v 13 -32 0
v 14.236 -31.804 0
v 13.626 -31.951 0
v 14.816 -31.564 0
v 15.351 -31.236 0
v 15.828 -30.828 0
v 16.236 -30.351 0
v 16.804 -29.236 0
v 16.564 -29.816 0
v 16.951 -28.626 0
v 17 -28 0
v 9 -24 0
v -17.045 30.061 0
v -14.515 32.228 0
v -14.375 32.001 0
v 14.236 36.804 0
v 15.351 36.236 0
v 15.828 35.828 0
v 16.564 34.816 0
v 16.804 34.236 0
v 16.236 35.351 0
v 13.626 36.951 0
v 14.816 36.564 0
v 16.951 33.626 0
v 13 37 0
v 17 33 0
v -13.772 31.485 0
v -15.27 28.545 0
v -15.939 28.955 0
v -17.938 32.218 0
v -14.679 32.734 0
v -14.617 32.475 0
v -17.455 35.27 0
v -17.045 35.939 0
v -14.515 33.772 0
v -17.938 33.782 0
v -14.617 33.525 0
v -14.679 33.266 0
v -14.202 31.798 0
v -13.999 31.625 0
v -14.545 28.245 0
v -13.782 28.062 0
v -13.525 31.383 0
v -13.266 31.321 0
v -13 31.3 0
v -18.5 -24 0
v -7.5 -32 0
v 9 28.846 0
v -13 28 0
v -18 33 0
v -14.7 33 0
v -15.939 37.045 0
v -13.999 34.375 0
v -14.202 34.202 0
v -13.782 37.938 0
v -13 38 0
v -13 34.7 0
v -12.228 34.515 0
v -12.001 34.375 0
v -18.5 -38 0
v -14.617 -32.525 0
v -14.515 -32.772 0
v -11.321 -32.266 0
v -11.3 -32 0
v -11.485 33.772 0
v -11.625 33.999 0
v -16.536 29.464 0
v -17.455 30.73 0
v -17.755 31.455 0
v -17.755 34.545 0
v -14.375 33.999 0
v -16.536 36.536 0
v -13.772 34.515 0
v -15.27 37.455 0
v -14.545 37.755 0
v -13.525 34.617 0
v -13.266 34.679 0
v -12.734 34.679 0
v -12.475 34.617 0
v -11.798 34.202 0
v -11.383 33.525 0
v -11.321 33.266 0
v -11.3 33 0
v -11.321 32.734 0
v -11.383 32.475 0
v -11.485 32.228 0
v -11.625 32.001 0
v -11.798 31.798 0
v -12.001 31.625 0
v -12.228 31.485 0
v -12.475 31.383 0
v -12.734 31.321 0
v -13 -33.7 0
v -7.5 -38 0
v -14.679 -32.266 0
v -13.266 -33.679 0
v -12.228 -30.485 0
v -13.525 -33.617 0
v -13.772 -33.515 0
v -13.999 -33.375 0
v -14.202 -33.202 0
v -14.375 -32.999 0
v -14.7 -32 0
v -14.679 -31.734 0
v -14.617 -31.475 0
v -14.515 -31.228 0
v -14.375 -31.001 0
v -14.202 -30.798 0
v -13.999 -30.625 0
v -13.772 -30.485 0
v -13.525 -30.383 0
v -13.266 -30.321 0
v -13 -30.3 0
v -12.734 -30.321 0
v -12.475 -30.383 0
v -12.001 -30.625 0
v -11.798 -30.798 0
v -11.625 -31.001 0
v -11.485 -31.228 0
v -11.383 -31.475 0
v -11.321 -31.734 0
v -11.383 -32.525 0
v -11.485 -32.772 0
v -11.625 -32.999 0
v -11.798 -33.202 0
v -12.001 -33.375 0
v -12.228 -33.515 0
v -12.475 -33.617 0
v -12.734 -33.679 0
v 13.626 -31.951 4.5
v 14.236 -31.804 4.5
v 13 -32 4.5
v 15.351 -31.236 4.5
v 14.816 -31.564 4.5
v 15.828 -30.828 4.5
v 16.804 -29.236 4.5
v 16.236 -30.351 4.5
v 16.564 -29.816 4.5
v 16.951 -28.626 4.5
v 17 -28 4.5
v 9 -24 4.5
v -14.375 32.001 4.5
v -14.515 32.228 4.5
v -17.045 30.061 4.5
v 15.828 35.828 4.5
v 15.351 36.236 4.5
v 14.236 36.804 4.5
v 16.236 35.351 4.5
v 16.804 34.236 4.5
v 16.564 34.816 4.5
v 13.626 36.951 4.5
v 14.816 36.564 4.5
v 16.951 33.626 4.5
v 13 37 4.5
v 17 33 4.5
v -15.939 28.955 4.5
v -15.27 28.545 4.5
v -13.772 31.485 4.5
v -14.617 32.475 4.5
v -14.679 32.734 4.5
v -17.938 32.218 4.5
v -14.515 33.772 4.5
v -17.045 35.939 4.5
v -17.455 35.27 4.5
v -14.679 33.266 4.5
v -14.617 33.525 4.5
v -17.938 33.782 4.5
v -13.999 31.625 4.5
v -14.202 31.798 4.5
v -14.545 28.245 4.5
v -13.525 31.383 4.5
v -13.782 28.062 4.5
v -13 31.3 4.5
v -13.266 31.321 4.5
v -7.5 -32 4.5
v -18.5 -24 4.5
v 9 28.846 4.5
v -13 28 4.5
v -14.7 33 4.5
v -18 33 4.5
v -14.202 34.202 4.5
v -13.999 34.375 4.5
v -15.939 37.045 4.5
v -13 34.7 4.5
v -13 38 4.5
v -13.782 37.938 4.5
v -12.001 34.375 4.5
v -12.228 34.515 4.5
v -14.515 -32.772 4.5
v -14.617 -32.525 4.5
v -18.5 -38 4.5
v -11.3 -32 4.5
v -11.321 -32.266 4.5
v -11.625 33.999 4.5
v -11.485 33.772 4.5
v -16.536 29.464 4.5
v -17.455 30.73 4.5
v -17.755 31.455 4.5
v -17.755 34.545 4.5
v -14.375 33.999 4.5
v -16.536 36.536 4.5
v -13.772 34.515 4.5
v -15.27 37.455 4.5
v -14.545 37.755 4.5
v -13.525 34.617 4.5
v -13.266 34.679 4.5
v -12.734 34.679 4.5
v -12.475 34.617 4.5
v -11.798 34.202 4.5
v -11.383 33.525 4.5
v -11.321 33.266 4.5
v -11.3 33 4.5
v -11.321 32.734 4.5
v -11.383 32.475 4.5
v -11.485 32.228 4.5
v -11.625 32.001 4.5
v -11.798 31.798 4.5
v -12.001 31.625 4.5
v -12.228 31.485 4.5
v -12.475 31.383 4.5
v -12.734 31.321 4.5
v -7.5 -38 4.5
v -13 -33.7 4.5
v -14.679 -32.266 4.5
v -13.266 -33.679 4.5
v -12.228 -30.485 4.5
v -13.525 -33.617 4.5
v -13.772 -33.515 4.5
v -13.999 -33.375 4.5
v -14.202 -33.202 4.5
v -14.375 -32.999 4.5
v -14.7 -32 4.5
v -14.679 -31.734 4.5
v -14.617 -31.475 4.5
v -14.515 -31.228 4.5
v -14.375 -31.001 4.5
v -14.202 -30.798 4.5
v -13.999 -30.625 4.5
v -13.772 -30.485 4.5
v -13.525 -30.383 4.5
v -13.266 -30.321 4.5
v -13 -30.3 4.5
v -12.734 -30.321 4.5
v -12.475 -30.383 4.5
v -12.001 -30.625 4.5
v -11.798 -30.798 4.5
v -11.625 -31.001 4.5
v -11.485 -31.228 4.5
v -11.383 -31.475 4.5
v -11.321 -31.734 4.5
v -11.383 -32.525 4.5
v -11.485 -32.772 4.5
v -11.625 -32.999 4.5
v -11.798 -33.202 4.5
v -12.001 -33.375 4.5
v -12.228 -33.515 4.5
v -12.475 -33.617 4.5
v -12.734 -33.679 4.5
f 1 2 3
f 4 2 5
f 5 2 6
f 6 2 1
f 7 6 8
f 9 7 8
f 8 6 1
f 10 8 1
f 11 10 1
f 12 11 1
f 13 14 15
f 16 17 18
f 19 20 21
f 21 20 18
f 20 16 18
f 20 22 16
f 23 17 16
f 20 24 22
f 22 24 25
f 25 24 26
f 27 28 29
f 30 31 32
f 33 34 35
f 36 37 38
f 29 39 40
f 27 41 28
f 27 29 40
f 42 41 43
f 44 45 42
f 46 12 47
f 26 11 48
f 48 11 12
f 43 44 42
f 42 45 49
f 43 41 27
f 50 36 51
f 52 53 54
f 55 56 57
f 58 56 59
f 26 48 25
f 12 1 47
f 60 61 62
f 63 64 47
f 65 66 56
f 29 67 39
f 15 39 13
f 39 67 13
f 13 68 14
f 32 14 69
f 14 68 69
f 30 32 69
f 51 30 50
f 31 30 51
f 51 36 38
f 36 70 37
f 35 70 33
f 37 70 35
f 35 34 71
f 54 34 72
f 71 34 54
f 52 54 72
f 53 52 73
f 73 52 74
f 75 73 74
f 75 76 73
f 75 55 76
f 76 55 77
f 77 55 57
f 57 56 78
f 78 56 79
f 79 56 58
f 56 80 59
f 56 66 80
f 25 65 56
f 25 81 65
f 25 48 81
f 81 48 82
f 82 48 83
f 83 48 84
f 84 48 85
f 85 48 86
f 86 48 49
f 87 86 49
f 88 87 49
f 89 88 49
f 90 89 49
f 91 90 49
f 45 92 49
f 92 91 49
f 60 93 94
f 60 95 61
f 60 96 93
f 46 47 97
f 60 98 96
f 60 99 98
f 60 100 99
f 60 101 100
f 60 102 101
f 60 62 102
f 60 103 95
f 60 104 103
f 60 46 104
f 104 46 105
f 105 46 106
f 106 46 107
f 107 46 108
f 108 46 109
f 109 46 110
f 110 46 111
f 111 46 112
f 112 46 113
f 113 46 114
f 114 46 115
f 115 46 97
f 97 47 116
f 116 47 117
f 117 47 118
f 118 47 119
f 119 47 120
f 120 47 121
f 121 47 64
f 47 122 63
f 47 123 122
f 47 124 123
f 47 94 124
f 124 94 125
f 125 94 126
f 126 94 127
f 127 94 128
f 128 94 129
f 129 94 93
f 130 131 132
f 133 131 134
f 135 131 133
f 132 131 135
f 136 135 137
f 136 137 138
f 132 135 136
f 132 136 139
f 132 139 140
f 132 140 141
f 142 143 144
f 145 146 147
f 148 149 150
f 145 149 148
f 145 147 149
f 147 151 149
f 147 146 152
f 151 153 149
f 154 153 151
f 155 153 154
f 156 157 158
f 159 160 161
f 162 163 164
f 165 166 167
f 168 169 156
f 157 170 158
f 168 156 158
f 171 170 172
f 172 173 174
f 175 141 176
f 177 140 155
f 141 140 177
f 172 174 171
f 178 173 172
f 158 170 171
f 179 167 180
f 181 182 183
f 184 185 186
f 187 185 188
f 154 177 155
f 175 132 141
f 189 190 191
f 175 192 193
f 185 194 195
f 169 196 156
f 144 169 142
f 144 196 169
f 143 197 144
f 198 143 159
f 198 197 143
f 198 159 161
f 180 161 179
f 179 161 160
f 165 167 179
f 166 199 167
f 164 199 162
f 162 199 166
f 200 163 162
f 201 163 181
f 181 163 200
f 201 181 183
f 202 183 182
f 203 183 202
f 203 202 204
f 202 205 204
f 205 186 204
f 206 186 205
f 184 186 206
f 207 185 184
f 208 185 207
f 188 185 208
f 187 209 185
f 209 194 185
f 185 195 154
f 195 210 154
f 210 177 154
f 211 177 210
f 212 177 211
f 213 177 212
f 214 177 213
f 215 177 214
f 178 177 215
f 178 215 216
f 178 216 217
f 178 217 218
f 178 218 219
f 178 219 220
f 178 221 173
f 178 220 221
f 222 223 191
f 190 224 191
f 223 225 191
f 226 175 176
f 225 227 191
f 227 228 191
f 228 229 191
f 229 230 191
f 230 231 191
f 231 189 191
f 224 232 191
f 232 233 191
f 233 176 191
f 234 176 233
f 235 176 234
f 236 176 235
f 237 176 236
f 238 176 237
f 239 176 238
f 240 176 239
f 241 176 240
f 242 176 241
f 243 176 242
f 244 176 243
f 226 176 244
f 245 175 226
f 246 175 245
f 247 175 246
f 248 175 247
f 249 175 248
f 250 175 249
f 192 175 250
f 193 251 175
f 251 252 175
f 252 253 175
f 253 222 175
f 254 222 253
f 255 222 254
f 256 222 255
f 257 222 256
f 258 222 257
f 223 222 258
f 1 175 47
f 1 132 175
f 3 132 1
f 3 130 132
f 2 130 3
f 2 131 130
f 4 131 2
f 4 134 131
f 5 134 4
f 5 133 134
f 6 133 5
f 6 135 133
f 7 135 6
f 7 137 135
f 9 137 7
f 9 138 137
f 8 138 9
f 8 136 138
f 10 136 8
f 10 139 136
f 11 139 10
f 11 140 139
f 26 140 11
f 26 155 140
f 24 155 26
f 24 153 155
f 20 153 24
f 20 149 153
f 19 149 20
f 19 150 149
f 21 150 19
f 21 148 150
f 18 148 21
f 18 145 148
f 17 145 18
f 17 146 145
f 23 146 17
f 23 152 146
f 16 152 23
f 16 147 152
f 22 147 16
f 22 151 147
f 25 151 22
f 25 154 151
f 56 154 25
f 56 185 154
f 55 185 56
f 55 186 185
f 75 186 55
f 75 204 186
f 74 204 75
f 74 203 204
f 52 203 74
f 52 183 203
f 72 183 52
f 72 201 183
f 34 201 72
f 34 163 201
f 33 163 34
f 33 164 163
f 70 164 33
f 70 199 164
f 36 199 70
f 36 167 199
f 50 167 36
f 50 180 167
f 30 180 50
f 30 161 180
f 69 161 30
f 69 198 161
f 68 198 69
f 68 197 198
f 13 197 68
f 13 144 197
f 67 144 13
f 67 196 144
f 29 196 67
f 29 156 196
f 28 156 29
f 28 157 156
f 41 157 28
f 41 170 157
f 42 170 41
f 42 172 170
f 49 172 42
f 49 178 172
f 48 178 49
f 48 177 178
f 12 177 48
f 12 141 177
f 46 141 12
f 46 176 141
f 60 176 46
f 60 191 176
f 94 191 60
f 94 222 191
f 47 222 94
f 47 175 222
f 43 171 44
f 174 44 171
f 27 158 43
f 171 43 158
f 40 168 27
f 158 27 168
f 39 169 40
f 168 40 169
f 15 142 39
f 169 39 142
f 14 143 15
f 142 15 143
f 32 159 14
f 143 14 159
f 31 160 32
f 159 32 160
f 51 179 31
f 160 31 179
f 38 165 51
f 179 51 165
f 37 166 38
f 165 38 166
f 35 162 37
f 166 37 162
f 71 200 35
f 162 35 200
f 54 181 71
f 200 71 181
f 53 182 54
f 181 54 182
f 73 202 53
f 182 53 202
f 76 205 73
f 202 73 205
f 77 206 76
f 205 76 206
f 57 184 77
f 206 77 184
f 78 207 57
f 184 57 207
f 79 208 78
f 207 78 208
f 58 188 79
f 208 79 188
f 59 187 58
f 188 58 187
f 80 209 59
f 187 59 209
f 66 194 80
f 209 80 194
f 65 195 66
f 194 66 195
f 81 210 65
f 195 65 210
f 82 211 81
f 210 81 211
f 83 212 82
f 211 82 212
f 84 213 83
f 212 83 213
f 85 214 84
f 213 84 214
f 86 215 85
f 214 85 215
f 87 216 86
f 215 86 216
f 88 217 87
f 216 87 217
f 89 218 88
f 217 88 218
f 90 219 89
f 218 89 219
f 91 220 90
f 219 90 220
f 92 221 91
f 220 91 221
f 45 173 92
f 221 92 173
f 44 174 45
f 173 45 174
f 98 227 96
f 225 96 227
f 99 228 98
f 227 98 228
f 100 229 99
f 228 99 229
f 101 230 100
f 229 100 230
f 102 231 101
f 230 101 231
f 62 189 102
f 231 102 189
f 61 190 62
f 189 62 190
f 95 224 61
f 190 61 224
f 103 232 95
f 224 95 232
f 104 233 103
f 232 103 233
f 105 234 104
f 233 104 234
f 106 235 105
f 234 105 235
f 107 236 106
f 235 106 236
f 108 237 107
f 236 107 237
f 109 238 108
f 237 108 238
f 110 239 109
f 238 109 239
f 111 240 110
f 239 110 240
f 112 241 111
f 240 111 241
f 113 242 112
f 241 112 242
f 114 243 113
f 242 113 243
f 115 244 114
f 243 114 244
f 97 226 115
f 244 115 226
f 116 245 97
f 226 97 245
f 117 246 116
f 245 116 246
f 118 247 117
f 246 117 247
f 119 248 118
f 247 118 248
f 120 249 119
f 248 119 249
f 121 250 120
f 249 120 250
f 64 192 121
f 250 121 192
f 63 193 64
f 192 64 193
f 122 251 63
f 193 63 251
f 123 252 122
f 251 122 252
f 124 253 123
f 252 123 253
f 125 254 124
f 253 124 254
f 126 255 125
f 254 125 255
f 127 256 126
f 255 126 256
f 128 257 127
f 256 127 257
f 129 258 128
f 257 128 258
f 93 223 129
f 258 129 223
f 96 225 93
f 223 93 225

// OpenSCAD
// ====================================================================
// [PRINT 03] Rigid C-Hanger Arm
// 100% planar 2D extrusion resting completely flat on the print bed.
// Every single square millimeter touches the bed at Z = 0 like a coin.
// Layer lines run along the curve for maximum tensile strength.
// ZERO SUPPORTS NEEDED!
// ====================================================================

use <gondola_cabin.scad>;

$fn = 50;

// Centered on bed at Z = 0
translate([-13.0, -32.0, 0])
    hanger_arm_flat();
